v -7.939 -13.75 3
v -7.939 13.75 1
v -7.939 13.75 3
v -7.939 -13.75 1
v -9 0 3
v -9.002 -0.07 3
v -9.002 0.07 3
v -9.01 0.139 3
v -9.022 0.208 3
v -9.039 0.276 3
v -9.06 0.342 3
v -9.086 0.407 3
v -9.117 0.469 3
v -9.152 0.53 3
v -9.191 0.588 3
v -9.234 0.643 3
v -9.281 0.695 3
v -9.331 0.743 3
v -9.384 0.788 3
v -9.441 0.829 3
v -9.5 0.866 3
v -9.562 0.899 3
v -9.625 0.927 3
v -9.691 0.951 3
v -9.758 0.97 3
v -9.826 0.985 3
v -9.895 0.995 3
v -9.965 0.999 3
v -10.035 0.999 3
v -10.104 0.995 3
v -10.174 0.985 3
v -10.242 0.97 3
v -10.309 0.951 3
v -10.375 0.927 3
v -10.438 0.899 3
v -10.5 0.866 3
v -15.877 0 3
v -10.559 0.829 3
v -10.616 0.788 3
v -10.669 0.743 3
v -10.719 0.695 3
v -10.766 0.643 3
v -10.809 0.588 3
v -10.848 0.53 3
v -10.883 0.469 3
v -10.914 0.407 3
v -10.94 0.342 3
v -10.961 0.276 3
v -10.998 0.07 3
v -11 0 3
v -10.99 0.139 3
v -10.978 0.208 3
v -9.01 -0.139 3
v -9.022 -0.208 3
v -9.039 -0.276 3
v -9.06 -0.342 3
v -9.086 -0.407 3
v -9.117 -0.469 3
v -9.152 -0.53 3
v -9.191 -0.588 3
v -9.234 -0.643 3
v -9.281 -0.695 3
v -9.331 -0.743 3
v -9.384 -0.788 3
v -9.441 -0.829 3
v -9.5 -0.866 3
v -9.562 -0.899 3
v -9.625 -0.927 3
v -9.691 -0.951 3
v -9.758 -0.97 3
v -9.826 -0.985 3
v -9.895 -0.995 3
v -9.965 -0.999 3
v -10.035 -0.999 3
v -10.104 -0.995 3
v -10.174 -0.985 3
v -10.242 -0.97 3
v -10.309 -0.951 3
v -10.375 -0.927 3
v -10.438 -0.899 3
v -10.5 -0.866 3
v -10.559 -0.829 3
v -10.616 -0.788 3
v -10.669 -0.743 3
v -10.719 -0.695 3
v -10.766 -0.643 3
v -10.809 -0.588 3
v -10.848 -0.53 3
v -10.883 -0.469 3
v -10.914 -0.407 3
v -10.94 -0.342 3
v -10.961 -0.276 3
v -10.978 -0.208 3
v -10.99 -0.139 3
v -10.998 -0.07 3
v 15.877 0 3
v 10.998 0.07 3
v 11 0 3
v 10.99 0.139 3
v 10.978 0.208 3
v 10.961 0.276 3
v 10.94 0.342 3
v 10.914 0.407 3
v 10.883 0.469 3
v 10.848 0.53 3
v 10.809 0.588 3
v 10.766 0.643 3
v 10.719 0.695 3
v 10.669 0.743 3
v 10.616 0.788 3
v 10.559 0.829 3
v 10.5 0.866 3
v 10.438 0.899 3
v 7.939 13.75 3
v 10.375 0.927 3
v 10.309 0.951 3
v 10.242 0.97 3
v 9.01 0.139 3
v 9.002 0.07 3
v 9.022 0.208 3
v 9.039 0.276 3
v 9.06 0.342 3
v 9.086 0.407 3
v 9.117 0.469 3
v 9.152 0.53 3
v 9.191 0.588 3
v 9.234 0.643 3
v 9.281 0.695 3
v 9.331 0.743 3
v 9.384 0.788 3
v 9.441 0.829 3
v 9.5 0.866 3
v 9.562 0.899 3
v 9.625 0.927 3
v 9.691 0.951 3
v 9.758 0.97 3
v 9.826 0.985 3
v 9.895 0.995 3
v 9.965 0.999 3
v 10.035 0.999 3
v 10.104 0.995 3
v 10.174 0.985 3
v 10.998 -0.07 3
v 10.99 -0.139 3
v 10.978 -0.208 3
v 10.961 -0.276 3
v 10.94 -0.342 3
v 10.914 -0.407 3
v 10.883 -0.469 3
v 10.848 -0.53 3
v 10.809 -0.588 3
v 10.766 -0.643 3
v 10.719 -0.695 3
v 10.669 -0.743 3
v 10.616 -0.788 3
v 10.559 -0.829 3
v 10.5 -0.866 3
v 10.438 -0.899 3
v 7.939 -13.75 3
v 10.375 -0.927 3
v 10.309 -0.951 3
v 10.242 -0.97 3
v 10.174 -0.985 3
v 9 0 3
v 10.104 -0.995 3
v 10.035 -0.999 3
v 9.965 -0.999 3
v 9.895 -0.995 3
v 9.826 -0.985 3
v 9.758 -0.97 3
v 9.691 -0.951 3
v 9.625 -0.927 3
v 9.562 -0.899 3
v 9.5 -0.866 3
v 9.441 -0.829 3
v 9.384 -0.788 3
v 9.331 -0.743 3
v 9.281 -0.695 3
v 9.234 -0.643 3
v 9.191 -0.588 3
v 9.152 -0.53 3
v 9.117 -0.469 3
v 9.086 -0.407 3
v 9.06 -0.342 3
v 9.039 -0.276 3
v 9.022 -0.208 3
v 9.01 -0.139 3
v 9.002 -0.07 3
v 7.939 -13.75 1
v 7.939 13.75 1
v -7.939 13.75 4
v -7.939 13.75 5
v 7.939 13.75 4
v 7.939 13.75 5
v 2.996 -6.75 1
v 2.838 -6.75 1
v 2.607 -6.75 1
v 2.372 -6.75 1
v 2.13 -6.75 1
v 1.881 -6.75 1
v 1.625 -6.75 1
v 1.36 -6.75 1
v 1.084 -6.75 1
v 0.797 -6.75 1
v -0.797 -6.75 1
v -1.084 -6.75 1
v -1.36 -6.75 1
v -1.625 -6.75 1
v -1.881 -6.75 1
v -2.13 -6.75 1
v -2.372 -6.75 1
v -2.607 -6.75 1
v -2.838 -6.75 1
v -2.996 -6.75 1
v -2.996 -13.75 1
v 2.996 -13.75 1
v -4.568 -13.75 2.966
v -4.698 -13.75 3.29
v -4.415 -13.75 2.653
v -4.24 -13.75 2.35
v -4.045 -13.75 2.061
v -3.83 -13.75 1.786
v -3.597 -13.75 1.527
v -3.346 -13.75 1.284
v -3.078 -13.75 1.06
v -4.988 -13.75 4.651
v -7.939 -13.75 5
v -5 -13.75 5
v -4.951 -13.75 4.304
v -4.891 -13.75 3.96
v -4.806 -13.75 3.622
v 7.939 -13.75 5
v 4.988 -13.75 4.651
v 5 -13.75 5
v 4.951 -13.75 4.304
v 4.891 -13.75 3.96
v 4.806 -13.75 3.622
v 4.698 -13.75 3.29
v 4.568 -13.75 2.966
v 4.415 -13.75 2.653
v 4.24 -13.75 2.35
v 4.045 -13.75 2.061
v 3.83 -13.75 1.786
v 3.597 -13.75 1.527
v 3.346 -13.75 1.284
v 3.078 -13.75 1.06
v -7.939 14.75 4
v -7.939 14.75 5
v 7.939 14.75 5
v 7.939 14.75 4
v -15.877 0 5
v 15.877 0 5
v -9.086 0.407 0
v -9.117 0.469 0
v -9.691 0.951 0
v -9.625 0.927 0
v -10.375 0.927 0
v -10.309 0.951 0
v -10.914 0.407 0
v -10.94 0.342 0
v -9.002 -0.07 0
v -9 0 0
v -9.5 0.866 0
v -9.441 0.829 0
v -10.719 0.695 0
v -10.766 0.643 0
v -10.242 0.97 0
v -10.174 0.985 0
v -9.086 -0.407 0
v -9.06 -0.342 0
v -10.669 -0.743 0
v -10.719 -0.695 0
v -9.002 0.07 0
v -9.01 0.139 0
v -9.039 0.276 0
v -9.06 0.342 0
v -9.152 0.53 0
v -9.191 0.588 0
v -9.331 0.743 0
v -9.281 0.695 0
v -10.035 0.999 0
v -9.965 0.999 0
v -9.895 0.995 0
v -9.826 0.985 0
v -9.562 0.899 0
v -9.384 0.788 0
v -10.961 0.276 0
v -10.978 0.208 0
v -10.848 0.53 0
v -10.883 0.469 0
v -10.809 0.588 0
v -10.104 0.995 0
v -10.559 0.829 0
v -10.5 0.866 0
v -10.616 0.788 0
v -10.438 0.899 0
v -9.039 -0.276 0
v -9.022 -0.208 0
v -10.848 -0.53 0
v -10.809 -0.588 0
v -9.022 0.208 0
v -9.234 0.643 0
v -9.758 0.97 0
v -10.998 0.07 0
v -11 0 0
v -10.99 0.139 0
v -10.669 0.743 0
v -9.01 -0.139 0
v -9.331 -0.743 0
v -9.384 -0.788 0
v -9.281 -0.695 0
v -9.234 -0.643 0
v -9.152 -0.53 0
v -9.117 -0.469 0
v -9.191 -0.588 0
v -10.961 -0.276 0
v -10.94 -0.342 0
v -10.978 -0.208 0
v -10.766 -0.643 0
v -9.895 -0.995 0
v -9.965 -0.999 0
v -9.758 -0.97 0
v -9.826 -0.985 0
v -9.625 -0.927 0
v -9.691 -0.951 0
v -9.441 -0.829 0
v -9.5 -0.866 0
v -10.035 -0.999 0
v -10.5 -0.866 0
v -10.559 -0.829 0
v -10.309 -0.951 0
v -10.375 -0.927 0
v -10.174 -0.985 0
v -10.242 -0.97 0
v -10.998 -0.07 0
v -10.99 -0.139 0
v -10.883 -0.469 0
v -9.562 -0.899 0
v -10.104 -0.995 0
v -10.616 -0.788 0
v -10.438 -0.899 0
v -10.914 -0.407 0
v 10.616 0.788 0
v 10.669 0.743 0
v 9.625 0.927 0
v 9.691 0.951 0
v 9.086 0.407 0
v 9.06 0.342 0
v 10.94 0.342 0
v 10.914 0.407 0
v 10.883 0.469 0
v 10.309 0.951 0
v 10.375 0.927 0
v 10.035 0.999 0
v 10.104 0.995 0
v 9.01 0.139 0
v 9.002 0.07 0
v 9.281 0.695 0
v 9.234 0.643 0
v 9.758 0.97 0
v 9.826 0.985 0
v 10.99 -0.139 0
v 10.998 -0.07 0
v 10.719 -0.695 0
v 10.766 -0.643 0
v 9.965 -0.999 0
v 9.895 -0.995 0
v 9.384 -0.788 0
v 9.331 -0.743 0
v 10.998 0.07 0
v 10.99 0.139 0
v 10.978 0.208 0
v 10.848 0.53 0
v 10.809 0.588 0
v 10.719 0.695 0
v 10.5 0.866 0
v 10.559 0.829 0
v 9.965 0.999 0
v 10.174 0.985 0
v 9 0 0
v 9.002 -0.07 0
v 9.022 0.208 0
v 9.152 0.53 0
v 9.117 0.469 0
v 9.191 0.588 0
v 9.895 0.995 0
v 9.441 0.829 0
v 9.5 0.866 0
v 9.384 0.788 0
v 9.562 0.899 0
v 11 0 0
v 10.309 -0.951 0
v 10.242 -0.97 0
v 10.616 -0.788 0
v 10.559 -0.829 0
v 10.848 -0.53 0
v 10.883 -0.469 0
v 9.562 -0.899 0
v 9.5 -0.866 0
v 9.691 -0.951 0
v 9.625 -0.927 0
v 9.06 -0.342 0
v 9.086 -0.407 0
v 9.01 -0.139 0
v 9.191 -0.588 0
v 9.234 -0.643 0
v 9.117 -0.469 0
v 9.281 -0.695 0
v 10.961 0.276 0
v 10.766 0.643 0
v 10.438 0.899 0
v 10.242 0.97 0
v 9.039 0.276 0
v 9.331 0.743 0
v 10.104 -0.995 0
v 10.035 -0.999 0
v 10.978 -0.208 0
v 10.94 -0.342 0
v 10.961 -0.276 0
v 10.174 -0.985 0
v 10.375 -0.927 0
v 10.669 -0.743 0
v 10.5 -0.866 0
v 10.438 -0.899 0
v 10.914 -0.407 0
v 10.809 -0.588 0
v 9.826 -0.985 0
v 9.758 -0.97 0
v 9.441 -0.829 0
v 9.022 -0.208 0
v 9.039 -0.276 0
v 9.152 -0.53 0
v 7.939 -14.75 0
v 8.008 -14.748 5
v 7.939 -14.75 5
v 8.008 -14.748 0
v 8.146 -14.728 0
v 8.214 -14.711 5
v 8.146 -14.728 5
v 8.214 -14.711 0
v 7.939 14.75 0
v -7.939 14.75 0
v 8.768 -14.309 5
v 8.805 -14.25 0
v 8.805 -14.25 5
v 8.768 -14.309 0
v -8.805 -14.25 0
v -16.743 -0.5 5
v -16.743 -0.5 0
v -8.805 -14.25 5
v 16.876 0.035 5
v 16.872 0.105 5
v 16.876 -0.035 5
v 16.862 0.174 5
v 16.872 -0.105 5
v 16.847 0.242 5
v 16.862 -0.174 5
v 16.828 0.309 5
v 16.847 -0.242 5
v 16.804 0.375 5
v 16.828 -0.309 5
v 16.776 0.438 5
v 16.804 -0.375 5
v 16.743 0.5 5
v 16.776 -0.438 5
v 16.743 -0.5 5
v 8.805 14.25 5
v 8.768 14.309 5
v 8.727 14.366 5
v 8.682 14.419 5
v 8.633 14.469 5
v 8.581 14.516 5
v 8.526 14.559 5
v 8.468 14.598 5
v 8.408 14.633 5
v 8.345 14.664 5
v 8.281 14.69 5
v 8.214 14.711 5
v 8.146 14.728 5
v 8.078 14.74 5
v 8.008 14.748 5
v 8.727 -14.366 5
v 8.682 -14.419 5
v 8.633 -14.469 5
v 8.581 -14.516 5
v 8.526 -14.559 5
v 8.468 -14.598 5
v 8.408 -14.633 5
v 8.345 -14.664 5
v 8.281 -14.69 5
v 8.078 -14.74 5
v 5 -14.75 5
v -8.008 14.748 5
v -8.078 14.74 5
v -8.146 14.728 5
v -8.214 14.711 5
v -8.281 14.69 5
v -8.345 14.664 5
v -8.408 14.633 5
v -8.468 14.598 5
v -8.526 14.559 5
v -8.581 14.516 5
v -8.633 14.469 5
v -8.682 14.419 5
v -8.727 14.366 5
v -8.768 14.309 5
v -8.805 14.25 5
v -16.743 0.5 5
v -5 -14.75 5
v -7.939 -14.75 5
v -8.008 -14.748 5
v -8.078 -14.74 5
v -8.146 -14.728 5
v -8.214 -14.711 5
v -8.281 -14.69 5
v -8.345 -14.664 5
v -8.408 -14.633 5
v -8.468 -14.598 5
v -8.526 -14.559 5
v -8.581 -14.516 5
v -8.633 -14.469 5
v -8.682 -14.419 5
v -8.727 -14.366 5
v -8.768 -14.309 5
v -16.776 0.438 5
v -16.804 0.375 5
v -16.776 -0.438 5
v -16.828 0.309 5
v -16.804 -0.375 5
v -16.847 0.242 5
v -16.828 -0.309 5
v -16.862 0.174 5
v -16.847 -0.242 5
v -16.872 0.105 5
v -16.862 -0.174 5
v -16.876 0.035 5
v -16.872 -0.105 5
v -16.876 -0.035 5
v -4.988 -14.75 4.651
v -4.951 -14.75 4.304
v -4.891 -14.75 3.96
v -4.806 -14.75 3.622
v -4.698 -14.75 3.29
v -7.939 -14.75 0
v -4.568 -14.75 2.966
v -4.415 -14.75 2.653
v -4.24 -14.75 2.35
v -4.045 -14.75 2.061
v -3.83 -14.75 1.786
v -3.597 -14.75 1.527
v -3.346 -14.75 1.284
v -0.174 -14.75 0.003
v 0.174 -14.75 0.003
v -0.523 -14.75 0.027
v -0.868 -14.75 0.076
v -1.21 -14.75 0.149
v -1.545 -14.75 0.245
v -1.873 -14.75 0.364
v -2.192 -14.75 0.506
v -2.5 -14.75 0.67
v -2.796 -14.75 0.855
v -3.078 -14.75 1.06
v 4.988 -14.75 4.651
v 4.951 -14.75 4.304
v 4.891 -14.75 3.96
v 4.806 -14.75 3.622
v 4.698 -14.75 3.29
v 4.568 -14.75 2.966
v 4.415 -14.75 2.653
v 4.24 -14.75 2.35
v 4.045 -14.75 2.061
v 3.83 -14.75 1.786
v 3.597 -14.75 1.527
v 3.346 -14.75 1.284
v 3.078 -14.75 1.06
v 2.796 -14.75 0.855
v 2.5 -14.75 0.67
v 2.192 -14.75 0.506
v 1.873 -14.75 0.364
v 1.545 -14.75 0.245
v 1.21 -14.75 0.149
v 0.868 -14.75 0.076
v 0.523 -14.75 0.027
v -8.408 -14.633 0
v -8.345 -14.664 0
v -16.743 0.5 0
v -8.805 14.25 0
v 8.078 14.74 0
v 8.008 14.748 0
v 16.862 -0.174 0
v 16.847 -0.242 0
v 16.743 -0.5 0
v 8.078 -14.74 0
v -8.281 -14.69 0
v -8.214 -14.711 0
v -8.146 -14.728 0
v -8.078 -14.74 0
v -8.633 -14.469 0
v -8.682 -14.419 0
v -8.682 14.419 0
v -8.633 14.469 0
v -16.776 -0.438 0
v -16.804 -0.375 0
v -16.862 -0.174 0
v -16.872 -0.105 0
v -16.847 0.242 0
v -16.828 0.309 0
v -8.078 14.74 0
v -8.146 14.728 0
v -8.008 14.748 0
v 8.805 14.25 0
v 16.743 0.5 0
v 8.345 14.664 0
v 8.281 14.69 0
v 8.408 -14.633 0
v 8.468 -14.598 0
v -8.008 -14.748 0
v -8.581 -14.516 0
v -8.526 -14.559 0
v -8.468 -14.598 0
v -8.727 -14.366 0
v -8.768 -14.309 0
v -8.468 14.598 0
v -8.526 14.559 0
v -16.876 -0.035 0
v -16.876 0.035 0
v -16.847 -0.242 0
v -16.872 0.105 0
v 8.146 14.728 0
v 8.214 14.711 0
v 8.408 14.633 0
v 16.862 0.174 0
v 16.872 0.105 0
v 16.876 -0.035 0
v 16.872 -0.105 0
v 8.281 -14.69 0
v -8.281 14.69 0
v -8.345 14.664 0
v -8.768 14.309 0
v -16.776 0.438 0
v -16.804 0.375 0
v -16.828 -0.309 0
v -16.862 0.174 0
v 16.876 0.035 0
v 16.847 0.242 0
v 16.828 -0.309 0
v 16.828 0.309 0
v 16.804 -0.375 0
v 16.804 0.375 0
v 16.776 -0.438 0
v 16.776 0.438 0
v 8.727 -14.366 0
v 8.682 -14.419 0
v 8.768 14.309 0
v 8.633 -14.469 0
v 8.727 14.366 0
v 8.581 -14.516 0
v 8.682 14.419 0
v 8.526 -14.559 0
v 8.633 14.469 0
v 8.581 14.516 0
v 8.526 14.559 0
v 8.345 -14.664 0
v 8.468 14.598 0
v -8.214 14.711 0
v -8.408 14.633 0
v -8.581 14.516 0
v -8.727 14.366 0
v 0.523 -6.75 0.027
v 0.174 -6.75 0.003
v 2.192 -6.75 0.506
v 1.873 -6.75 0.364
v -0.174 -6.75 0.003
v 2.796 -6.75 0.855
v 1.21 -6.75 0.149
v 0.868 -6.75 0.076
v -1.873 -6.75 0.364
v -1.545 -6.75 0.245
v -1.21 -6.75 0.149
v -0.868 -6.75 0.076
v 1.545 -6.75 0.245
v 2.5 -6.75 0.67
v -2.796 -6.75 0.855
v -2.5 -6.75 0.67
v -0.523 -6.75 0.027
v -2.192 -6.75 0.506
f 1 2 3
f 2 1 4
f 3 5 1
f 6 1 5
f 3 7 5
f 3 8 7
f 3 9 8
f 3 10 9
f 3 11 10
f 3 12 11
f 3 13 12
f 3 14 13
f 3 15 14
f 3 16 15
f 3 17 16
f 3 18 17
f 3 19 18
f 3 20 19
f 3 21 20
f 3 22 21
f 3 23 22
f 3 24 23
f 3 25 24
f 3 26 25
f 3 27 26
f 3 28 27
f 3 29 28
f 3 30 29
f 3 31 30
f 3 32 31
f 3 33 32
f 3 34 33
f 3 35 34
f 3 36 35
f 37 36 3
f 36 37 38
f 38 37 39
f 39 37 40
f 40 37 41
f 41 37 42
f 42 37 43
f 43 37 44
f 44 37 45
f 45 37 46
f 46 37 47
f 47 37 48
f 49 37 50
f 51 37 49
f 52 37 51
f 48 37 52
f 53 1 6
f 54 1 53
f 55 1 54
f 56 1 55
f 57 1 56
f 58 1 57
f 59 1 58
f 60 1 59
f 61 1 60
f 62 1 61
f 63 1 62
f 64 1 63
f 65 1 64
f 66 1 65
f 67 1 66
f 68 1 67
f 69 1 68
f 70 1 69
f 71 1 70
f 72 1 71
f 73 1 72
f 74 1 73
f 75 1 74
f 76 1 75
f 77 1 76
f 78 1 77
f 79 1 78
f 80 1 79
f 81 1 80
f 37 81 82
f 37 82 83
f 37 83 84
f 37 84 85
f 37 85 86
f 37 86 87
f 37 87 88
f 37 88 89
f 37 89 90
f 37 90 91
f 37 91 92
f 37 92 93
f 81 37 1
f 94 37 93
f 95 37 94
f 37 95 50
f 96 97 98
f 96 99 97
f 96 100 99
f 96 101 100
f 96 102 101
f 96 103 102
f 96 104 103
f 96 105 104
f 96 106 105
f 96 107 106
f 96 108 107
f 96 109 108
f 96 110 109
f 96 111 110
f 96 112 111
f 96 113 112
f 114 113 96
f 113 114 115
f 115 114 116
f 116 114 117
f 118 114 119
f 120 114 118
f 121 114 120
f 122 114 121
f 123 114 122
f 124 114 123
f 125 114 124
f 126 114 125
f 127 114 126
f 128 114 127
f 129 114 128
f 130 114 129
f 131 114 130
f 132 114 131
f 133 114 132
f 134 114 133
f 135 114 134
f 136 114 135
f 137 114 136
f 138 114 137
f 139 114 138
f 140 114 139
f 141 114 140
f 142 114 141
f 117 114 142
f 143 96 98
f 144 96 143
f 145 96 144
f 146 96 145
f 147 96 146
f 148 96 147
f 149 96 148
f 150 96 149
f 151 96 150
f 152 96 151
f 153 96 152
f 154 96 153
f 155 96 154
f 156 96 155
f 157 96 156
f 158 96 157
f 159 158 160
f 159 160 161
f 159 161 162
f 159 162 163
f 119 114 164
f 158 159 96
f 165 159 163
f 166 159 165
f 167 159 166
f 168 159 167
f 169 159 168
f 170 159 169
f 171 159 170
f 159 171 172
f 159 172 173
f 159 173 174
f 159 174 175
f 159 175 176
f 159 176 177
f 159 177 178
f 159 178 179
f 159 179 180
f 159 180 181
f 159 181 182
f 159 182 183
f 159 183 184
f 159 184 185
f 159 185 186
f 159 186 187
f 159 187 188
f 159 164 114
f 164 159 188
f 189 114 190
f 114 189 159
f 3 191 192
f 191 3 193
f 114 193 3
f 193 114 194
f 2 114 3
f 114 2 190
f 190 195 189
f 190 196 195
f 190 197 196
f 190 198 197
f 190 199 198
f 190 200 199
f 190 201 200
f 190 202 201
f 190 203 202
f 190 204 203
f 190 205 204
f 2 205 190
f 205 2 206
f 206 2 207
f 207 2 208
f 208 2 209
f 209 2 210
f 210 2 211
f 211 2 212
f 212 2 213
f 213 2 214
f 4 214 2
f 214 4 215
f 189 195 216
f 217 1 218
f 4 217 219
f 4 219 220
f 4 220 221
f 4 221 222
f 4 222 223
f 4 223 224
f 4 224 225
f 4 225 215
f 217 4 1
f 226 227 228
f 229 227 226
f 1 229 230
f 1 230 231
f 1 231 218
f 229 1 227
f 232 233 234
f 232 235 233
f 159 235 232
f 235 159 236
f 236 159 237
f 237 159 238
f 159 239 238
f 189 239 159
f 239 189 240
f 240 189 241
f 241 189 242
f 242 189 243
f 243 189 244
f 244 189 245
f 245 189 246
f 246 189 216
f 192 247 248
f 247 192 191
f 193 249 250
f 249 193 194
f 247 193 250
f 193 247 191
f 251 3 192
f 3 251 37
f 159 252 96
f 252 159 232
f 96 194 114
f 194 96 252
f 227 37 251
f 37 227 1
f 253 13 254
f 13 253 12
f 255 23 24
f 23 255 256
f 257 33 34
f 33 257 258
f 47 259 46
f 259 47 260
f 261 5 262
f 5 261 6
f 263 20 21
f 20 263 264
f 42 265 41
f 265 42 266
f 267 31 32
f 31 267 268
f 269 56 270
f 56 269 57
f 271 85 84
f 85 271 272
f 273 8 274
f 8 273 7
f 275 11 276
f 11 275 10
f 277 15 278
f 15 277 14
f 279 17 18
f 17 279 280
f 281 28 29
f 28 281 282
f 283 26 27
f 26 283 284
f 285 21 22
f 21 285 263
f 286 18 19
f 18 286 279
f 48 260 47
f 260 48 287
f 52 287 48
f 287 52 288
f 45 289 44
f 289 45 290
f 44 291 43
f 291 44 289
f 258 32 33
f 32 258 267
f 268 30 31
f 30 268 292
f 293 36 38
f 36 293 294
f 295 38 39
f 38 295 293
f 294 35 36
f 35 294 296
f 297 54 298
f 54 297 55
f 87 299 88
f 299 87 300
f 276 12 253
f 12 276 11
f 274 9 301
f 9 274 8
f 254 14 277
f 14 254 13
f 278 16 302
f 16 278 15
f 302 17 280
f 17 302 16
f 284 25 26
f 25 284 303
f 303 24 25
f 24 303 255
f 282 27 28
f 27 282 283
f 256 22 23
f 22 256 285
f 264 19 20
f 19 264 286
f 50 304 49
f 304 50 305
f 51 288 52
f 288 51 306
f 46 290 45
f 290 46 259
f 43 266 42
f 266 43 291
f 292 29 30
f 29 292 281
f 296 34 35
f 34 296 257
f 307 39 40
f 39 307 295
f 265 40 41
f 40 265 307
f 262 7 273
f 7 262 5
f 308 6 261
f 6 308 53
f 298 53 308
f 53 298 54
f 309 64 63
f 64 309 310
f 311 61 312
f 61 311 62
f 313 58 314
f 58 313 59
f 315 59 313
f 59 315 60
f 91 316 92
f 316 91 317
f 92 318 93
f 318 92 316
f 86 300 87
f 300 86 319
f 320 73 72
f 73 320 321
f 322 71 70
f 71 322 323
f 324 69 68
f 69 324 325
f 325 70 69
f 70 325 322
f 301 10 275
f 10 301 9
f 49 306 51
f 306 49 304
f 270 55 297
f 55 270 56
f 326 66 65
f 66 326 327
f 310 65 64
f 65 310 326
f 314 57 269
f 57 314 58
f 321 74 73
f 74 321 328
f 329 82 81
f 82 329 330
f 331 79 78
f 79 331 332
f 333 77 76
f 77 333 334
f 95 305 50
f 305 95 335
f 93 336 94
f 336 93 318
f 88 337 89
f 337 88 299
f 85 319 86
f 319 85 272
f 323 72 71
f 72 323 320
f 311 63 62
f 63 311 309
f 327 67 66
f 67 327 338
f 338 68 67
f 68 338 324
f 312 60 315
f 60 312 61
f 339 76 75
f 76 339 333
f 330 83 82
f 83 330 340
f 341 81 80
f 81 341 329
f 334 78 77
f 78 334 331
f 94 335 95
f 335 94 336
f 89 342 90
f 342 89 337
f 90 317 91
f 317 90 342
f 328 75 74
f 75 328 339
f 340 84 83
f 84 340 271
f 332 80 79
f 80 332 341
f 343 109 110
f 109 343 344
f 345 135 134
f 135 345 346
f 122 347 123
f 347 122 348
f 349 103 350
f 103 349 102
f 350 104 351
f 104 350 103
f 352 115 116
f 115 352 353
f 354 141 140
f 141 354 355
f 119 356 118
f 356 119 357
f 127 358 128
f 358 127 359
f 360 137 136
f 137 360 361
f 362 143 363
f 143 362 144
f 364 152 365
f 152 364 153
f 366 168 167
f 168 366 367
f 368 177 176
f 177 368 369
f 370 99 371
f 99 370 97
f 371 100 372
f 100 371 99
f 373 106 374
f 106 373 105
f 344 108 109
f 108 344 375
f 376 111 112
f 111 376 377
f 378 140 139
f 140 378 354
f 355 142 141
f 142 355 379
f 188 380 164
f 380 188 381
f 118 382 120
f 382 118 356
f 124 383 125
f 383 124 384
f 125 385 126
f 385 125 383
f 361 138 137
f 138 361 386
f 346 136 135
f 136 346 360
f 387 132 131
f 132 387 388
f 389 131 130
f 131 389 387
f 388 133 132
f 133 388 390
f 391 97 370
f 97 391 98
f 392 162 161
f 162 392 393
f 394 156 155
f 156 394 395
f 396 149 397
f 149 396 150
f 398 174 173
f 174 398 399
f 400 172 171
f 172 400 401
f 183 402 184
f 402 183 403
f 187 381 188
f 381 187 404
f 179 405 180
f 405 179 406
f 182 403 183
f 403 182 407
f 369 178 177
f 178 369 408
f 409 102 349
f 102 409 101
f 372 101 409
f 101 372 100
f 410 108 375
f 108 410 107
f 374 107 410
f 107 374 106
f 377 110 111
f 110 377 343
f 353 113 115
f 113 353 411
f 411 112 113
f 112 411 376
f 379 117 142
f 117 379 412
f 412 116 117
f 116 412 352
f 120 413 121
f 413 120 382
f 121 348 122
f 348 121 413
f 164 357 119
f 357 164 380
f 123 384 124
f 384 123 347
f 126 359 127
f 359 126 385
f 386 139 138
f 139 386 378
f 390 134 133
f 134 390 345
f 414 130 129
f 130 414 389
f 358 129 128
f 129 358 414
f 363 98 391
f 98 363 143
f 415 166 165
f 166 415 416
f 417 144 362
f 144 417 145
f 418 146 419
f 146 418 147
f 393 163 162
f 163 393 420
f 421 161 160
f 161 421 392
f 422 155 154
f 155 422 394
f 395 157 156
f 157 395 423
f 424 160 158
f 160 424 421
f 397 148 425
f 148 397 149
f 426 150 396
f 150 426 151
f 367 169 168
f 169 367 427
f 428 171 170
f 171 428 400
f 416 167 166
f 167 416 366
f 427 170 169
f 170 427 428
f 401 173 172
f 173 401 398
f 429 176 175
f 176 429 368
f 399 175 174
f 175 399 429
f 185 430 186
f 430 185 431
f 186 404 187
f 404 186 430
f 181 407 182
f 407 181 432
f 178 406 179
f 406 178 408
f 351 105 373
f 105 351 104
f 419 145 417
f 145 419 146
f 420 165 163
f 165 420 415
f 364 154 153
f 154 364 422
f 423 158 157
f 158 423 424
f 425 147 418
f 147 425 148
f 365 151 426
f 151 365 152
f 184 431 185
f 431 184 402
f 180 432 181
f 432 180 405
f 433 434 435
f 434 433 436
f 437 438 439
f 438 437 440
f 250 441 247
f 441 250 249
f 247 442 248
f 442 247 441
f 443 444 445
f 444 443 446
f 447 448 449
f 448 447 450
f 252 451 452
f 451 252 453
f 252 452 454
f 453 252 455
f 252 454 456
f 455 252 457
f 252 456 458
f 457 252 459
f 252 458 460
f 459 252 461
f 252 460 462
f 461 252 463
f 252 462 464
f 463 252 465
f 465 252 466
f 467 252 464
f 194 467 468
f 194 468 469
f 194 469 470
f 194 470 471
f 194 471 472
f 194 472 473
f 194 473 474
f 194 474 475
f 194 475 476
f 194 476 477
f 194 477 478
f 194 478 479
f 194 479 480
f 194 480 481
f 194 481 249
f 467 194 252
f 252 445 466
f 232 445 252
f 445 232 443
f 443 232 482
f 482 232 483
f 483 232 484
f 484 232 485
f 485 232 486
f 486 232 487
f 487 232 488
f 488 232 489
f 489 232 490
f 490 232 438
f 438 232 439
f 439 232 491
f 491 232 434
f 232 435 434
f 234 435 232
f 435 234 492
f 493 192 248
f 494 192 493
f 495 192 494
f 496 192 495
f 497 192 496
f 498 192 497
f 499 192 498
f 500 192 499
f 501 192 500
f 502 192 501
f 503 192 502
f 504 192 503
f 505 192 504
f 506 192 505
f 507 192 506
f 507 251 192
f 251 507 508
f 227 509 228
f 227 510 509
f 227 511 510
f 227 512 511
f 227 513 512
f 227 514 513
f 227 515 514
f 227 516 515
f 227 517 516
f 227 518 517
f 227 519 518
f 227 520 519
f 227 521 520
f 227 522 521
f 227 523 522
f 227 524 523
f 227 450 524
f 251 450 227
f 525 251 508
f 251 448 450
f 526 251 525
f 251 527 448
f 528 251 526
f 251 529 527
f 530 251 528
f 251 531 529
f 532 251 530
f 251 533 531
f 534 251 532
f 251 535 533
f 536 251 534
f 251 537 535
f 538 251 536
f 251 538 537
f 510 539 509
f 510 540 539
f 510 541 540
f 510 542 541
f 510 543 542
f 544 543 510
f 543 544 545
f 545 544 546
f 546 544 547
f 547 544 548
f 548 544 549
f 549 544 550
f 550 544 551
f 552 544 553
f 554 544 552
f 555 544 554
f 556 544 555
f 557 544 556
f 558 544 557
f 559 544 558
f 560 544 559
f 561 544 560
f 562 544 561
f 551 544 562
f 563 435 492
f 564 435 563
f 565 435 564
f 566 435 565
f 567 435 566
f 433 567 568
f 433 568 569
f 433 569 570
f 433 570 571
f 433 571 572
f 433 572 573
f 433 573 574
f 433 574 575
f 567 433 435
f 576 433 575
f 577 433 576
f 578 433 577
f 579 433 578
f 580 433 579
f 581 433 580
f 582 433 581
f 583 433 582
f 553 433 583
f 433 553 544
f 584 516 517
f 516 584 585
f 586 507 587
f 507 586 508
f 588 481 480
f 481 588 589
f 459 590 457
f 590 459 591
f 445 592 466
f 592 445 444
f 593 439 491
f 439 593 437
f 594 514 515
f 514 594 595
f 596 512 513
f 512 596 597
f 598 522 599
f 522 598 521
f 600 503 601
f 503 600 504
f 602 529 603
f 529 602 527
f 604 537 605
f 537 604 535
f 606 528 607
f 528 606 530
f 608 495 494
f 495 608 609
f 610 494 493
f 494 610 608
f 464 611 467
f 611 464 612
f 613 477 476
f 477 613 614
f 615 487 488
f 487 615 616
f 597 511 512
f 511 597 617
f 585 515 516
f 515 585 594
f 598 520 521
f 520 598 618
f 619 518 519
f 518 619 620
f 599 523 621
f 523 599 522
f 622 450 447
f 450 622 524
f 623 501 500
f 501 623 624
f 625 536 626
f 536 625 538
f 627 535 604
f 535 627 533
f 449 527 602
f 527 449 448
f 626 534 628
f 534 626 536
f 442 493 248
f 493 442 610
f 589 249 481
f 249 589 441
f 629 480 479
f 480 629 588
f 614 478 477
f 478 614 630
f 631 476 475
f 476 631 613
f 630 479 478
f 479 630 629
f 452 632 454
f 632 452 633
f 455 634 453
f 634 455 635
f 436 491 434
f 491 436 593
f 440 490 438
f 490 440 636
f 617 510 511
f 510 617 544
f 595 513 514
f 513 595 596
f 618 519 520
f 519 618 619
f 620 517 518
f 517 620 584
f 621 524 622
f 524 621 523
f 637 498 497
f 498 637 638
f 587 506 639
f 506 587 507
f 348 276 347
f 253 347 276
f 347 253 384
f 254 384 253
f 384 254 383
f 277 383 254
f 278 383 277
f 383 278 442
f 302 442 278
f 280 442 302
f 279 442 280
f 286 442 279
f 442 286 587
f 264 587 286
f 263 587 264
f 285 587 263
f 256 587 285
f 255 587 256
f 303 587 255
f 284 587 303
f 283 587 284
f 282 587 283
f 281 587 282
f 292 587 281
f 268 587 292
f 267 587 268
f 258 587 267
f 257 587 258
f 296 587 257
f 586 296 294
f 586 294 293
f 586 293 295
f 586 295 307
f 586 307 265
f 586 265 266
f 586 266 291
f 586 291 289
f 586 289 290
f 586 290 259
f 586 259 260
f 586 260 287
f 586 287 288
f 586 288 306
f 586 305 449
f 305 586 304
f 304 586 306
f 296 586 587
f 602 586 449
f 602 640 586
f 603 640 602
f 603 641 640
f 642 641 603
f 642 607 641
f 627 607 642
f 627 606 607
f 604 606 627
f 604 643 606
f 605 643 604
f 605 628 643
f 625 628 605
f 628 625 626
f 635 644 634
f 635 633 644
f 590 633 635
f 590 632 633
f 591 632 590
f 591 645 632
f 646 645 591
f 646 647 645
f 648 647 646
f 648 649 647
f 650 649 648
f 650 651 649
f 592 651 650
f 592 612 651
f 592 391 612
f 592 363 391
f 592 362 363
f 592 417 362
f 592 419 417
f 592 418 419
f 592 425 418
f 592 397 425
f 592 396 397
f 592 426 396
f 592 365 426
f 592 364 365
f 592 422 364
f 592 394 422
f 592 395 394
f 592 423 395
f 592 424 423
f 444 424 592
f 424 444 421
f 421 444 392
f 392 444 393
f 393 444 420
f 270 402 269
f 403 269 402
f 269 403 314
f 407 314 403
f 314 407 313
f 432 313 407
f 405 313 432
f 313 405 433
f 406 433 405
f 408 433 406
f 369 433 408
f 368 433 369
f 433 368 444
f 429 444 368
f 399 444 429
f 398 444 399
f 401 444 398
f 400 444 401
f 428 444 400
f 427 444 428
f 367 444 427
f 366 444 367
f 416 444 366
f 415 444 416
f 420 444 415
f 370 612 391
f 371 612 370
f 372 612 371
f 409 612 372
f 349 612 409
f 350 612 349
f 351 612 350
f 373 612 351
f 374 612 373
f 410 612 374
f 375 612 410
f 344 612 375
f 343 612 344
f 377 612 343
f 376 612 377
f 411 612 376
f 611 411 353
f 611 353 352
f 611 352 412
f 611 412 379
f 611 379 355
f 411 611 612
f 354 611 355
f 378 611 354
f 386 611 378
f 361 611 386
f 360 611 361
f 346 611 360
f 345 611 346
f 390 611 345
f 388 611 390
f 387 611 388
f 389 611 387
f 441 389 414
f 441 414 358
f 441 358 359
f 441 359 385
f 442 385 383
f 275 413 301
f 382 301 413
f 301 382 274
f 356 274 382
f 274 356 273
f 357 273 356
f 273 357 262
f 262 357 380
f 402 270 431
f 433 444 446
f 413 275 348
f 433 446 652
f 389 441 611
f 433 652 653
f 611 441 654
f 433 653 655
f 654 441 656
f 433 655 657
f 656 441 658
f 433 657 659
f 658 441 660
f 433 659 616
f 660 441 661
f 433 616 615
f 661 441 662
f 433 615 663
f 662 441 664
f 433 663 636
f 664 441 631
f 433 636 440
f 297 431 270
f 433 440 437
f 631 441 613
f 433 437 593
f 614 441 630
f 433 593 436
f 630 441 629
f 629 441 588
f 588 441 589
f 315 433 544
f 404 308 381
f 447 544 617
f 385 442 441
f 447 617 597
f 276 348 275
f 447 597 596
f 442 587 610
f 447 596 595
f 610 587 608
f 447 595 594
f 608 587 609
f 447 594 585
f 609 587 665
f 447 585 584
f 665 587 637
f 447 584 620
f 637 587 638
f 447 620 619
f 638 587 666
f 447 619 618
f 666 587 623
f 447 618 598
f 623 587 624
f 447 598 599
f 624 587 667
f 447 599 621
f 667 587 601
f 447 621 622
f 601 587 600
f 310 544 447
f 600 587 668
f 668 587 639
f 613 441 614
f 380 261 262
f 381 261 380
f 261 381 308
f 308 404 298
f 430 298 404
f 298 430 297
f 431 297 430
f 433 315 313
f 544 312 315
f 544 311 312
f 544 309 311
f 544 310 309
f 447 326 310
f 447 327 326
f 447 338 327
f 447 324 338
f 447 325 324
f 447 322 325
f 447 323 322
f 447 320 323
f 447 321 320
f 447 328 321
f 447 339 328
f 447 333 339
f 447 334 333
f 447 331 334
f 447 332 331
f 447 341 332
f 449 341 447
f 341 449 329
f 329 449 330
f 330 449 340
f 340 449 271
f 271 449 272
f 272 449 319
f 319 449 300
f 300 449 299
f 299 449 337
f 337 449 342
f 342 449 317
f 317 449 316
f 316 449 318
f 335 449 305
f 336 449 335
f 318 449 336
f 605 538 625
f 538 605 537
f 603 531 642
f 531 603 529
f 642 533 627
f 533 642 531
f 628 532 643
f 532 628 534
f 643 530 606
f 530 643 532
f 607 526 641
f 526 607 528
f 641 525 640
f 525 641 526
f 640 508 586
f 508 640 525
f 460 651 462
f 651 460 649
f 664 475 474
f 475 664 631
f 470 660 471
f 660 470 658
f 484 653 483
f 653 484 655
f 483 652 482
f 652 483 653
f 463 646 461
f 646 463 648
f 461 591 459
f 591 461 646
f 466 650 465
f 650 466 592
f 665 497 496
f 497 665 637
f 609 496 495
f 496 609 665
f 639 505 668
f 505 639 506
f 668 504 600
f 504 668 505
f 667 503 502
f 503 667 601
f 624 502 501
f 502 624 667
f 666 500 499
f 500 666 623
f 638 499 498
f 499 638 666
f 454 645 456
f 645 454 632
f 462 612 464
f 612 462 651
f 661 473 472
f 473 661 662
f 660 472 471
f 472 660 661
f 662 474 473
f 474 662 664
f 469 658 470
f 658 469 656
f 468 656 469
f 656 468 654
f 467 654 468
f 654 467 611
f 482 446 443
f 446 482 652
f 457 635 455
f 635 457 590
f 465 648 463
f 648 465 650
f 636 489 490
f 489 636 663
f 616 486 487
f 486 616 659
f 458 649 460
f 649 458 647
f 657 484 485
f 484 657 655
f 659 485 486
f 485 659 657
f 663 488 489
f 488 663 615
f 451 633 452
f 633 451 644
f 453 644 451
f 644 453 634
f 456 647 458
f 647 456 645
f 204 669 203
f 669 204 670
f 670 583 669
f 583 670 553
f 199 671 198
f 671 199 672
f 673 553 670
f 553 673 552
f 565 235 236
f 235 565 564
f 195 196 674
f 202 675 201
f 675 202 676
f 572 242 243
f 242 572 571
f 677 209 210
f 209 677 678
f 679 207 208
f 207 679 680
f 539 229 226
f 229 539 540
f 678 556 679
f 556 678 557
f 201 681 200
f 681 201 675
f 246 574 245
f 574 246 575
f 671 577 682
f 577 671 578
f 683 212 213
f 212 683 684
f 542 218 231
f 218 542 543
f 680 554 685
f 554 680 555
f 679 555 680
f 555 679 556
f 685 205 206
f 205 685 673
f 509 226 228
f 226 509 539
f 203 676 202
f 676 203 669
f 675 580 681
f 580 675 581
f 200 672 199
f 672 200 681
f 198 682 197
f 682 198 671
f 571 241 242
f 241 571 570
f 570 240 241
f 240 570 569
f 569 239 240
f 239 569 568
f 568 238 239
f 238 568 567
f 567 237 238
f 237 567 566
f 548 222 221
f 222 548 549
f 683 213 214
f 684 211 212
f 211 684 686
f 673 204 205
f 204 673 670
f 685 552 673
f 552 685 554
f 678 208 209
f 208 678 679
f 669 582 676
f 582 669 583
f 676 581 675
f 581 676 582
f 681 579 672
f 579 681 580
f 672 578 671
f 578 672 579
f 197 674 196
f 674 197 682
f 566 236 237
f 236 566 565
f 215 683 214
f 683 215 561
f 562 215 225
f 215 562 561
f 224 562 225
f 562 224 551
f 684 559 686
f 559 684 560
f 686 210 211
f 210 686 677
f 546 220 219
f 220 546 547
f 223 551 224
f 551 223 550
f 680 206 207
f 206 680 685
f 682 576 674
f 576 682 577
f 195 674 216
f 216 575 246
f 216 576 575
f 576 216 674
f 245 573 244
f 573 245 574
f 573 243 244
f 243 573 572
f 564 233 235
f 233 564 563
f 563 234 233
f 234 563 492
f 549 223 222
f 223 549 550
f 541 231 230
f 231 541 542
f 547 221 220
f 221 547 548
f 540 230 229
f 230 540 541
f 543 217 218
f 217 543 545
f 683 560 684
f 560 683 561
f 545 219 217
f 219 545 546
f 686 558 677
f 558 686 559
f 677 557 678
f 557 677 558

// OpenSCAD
// file: zum-hexmodule.scad
// zum module 1
// hexagonal module

$fn = 90;
drill = 2;

module holes() {
    d = 20;
    translate( [ -d/2, 0, -1 ] ) cylinder( d = drill, h = 11 );
    translate( [ d/2, 0, -1 ] ) cylinder( d = drill, h = 11 );
}

module hexagon( ) {
    h = 27.5;
    b = 27.5;
    
    intersection() {
        square( [ 100, h ], center = true );
        rotate( 60 ) square( [ 100, b ], center = true );
        rotate( -60 ) square( [ 100, b ], center = true );
    }
    
}

module zum_hexmodule_clearance( h = 27.5 ) {
    ri = h/2;
    ro = ri / ( 0.5 * sqrt(3) );
    translate( [ -ro/2, -ri, -2 ] ) cube( [ ro, ri * 2, 2 ] );
    translate( [ -ro/2, ri/2, 1 ] ) cube( [ ro, ri, 8 ] );
    
}

module zum_hexmodule() {
    difference() {
        linear_extrude( height = 5 ) offset( r = 1 ) hexagon();
        translate( [ 0, 0, 3 ] ) {
            linear_extrude( height = 5 ) hexagon();
            zum_hexmodule_clearance();
        }
        holes();
    }
}

zum_hexmodule();
// main file
use <zum-hexmodule.scad>;

$fn  = 90;

difference() {
    zum_hexmodule();
    translate( [ 0, -27.5/2 + 7, 5 ] ) 
        rotate( [ 90, 0, 0 ] )
            cylinder( d = 10, h = 10 );
}
